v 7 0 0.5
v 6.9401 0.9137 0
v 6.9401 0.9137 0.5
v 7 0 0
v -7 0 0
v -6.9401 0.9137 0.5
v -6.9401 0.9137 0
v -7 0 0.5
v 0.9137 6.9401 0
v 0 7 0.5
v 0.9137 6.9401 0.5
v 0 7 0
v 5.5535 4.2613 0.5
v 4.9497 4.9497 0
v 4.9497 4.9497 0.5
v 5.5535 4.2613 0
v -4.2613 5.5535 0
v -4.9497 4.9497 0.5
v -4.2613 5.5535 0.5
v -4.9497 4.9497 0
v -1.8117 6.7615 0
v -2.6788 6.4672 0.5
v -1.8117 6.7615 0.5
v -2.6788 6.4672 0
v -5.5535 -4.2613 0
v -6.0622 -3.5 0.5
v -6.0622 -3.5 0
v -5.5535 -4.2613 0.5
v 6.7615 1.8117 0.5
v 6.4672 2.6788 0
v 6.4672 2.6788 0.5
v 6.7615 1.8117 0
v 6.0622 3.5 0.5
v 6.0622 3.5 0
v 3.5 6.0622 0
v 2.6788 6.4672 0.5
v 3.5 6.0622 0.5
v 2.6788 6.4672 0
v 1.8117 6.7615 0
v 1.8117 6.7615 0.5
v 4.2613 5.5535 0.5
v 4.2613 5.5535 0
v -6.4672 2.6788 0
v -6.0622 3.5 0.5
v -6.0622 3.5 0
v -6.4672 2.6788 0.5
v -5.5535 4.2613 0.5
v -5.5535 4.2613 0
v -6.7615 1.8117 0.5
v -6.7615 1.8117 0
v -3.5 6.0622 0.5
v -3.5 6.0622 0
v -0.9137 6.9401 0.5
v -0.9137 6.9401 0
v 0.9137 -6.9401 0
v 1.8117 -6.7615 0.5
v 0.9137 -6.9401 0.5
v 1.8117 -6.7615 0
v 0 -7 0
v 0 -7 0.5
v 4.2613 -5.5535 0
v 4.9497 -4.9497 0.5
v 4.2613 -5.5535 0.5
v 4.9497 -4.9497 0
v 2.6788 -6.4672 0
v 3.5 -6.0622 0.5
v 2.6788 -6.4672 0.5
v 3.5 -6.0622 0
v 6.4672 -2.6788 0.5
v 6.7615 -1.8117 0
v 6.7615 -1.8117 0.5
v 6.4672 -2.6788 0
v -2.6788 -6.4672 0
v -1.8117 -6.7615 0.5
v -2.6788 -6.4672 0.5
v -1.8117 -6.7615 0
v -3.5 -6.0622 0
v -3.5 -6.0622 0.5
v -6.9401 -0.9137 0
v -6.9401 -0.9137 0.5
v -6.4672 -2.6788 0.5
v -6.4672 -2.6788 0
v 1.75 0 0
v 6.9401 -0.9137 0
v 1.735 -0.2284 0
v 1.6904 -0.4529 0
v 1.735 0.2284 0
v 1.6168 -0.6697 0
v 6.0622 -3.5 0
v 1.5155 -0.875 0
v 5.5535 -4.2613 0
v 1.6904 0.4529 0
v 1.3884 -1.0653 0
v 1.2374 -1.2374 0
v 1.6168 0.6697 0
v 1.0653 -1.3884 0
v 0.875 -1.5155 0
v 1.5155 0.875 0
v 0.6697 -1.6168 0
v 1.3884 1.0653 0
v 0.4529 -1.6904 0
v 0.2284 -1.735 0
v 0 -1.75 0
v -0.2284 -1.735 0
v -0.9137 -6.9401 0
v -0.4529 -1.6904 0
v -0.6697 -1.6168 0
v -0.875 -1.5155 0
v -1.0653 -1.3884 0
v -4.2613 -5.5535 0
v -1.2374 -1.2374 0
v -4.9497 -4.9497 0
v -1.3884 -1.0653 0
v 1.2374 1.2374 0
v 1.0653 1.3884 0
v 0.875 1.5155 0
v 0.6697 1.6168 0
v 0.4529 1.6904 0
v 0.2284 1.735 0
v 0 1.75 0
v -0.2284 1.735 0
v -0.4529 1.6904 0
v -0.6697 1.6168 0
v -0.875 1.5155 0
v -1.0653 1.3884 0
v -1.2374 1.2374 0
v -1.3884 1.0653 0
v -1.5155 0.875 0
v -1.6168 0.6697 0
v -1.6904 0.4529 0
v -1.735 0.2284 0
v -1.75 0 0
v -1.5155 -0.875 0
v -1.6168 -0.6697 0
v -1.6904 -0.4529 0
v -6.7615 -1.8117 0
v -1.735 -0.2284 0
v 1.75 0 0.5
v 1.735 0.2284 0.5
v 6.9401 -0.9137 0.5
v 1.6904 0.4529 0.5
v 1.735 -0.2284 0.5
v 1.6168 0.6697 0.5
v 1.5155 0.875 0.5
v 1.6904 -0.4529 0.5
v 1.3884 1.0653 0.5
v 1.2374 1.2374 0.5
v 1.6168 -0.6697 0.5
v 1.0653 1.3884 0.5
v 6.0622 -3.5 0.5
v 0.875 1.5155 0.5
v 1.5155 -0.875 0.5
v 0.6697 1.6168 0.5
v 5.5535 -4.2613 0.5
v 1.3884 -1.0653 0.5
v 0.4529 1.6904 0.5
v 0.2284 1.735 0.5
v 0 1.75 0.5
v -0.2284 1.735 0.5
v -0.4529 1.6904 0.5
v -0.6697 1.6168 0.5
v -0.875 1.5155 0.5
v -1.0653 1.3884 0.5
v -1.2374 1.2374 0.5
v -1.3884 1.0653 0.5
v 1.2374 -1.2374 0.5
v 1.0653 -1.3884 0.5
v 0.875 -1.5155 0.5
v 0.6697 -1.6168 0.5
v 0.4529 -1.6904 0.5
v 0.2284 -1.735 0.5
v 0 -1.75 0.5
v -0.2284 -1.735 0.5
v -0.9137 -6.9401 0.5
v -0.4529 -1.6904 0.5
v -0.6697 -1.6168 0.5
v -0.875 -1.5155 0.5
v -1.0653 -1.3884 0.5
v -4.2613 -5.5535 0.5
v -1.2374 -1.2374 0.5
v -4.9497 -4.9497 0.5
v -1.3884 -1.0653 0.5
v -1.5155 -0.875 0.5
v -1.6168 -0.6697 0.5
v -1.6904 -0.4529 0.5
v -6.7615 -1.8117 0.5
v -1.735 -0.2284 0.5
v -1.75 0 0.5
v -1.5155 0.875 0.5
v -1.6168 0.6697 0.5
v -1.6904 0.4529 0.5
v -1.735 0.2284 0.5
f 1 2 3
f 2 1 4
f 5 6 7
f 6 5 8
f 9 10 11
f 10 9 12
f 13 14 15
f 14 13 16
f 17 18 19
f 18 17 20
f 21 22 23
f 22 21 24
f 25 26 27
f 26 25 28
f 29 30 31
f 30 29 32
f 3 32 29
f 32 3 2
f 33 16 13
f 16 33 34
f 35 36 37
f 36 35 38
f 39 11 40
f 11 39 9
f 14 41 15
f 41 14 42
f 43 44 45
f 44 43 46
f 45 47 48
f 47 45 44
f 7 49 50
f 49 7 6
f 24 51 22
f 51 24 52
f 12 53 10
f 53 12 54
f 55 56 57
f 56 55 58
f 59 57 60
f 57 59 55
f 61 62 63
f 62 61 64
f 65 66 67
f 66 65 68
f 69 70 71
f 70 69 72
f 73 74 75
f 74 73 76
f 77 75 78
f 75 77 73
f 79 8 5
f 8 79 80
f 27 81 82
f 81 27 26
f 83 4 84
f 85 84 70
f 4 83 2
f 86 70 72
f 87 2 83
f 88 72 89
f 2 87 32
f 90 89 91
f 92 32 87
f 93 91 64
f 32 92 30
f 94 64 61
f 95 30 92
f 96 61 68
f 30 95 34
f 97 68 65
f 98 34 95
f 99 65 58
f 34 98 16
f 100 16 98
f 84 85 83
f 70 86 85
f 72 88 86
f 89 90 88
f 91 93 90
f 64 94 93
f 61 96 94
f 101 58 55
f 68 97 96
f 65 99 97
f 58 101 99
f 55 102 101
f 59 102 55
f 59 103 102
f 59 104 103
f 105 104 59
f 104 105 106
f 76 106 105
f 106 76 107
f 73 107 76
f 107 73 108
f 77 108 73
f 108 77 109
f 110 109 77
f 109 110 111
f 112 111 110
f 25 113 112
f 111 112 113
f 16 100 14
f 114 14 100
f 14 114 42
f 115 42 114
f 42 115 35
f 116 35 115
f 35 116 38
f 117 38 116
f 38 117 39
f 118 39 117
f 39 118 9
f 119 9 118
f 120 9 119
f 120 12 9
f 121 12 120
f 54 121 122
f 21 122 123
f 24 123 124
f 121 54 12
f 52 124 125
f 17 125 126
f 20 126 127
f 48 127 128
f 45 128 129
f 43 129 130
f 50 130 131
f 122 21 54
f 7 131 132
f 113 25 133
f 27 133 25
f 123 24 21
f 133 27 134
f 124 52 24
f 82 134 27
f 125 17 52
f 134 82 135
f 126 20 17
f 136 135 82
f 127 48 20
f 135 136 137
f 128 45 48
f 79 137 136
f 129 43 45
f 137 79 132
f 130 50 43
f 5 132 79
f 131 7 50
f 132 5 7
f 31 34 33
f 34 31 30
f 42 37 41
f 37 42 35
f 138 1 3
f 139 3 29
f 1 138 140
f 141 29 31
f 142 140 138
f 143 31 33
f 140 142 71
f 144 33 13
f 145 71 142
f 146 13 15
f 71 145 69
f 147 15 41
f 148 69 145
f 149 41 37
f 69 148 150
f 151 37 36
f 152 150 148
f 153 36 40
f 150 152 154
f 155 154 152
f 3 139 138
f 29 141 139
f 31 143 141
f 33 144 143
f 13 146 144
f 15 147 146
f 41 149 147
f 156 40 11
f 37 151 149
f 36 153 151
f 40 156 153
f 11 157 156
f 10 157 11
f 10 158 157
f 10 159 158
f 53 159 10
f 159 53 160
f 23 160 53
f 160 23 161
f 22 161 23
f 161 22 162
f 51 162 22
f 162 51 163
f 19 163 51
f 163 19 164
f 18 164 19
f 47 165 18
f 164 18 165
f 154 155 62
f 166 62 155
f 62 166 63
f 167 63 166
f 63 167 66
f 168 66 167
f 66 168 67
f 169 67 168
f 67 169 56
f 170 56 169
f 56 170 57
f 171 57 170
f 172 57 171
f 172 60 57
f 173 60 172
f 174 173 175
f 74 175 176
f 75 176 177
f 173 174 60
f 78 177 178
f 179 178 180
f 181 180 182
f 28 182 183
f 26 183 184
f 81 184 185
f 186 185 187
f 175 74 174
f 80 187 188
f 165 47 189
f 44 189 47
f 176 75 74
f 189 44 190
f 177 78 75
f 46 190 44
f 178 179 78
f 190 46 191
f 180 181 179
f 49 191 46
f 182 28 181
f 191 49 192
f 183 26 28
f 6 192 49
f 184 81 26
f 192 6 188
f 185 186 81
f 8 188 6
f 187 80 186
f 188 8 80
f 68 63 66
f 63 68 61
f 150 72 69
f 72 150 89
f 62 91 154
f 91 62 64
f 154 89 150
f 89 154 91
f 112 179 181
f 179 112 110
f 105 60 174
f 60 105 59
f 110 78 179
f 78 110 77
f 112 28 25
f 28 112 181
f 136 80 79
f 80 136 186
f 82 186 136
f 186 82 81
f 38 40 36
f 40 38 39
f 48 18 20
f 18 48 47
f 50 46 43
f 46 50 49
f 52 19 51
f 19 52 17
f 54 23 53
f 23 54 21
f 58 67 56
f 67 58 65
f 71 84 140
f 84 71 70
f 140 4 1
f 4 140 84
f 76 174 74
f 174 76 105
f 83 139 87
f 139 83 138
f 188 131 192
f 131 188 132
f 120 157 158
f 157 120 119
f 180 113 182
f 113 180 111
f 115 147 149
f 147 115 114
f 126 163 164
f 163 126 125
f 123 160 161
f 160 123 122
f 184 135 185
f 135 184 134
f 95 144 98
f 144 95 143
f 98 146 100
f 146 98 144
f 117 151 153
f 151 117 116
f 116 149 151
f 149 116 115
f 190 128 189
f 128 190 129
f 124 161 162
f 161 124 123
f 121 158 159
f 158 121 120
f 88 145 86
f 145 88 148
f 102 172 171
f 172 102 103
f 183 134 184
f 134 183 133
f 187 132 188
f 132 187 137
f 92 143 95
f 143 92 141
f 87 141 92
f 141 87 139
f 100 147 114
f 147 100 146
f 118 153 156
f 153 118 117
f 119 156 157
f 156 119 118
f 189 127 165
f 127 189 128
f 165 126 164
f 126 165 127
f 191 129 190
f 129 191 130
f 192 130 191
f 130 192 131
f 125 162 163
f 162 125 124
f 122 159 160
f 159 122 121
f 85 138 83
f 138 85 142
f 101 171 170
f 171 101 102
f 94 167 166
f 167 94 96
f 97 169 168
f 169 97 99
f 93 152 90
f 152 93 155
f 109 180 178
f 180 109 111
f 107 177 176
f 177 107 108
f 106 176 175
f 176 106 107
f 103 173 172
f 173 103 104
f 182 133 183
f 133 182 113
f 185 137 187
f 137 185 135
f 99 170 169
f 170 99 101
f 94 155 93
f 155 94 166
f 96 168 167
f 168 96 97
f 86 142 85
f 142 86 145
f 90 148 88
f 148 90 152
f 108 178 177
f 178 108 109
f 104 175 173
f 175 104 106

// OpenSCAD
// file: parameters.scad
// =============================================================================
// Gen-CE — nightly 2026-10-14 (physics_scorer, honest magpylib watts)
// Wire-saver stator for the Gen-CD rotors: only 3.9 mm of copper (≈9 layers), magnet faces ≈6.5 mm apart, peak Bz ≈0.70 T. Uses ≈300 m of wire (≈80 m less than Gen-CD) and still clears Gen-BX; shares every rotor part, the steel, the frame rods and the bearing bridges with Gen-CD, so the two stators swap on the same machine.
// Clocking 0 deg (magnets N facing S) + D-flat keyed bore + index notch + flip-symmetric hole map.
// Windable 2-piece bobbin; turns = physics_scorer turns_fit; copper only between flanges.
// Steel back-iron: 2× Ø198 × 4.76 mm (3/16") mild-steel discs (steel_backiron_disc.dxf); magnets sit ON the steel
// (through-pockets) -> score with --back-iron. Night 2026-10-14.
// =============================================================================
topology            = "dual_rotor";

// --- Wire / winding (physics_scorer winding-fit) -------------------------------
wire_awg            = 26;
wire_od             = 0.45;     // insulated OD mm (bare 0.405)
fill_realistic      = 0.65;     // insulated-wire area / window (DENSE layered wind with a jig; scorer cap 0.65)
turns               = 288;       // = physics_scorer turns_fit (do NOT raise)
coil_former_type    = "bobbin";
coil_core_inset     = 18.10;     // radial copper build: hub = copper boundary inset by this
wind_build_axial    = 0.0;      // nothing proud of the flanges
wind_build_radial   = 0.0;

// --- Bobbin (base + lid) ---------------------------------------------------------
coil_id_r           = 64.00;    // copper boundary sector
coil_od_r           = 104.00;
span_deg            = 26.87;    // = pitch - 2*asin((wall+0.85)/coil_id_r) -> >=1.2 mm stator web
former_web          = 3.90;     // copper height between flanges (TALL copper: steel keeps Bz up)
flange_t            = 0.80;     // >= 0.8 mm FDM wall rule (tall winds push on the flanges)
wall                = 0.80;     // flange lip beyond copper
former_bare_h       = former_web + 2 * flange_t;
coil_envelope_h     = former_bare_h + 2 * wind_build_axial;
tab_w               = 7.0;
tab_len             = 7.0;
tab_h               = former_bare_h / 2;
pin_d               = 1.9;      // 1.75 mm filament locating pin
coil_mount_r        = coil_od_r + 0.2 + 4.0;
lead_y              = 1.6;
lead_slot_w         = 0.9;
lead_groove_d       = 0.6;

// --- Gap -------------------------------------------------------------------------
run_clear           = 0.50;     // rotor face -> flange
gap_spacer_h        = run_clear + wind_build_axial;
m2m                 = coil_envelope_h + 2 * run_clear;   // rotor face to rotor face (= gap_sleeve length)

// --- Stator ----------------------------------------------------------------------
coil_stations       = 12;
bay_clear           = 0.35;     // 0.35 mm: bobbin BASES print IN PLACE inside the stator bays (print-in-place gap), then pop out
stator_thick        = former_bare_h;                        // bobbins flush both faces
stator_od           = 229.0;
shaft_clear_stator  = 14.0;     // stator is static; gap sleeve OD 12 spins inside
stator_ir           = 58.85;    // ANNULAR stator: open centre (nested one-plate pack); inner rim 4.0 mm

// --- Rotor(s) --------------------------------------------------------------------
magnet_Br           = 1.43;     // N52
magnet_d_large      = 20.0;
magnet_h_large      = 5.0;      // one O20x5 per pocket
magnet_h_small      = 5.0;      // unused: no O5 pockets in this kit
halbach_magnetisation = "none";  // NO O5 assist magnets in this kit (scan: they lower the 4-pole score)
rotor_b_same_axis   = true;     // same-index magnets share one axis: N faces S across the gap
large_pocket_d      = 20.3;
small_pocket_d      = 5.3;
pocket_h            = 5.00;     // THROUGH the carrier: magnet back face sits on the steel disc (FLUSH seat: carrier = magnet height, magnet face level with the rotor face)
large_n             = 8;
R_large             = 86.0;
small_r_list        = [];       // no O5 pockets
carrier_od          = 198.0;
ring_ir             = 72.85;    // RING rotor: PLA magnet ring r ring_ir..carrier_od/2 (steel disc = structural rotor)
hub_flange_od       = 74.0;     // separate rotor_hub flange (inside the ring, flush with the ring face)
csk_d               = 6.6;      // M3 countersunk head pocket (ISO 10642 head 6.0 nominal) on the stator face
csk_depth           = 1.55;     // = (csk_d - m3_clear) / 2: 90 deg cone; head sits 0.3 mm below the face
n_seg               = 8;        // magnet-carrier ARCS per rotor (segmented carrier)
seg_deg             = 360 / n_seg;
seg_start           = -22.5;   // arc edge angle (between pocket 0 and its clamp bolt)
seg_kerf_deg        = 0.4;      // gap between neighbouring arcs on the steel
carrier_thick       = pocket_h;
hub_h               = 12.0;     // > steel_t + insert: radial set-screw clears the steel
hub_od              = 24.0;     // slim hub so the M4 brace rods fit at R~18 inside the coil ring
hub_insert_d        = 4.0;      // M3 heat-set insert, radial, bears on the D-flat
rotor_b_offset_deg  = 0.0;      // CLOCKING: magnets directly opposite
shaft_key           = "dflat";
dflat_depth         = 0.5;      // 8 mm shaft with 0.5 mm flat (7.5 across flat)
index_notch_d       = 3.0;

// --- Steel back-iron (buyable laser-cut) -------------------------------------------
steel_t             = 4.76;      // mild steel thickness (image method ignores it; sized from steel_flux.py so the return path stays well below saturation)
steel_center_hole   = 26.0;     // slips over the rotor hub (OD 24)
steel_od            = carrier_od;   // steel disc OD = rotor carrier OD

// --- Modular MAX interface ----------------------------------------------------------
shaft_bore          = 8.35;
dflat_x             = 4.0 - dflat_depth + (shaft_bore - 8.0) / 2;
bearing_d           = 21.85;
bearing_h           = 7.2;
m3_clear            = 3.5;
bolt_r_inner        = 30.0;     // M3 steel-disc clamp bolts (inside the magnet ring)
bolt_n_inner        = 4;
bolt_inner_angles   = [0, 90, 180, 270];
bolt_r_outer        = 86.0;     // second M3 steel-disc clamp ring
bolt_outer_angles   = [22.5, 67.5, 112.5, 157.5, 202.5, 247.5, 292.5, 337.5];
flange_bolt_r       = 109.5;     // frame rods: OUTSIDE the rotor OD (rotors spin inside them)
flange_bolt_n       = 4;
flange_bolt_offset  = 45.00;    // between coil stations -> never cuts a lead groove/tab
brace_r             = 18.0;
brace_d             = 4.3;      // temporary M4 jack rods (assembly only)
brace_n             = 4;
brace_angles        = [45, 135, 225, 315];          // flip-symmetric

spacer_pad_od       = 14.0;
spacer_pad_id       = m3_clear;
endbell_od          = 229.0;
endbell_thick       = 8.0;
endbell_shaft_clear = 10.0;
collar_h            = 10.0;
standoff_od         = 9.0;
frame_standoff_h    = run_clear + carrier_thick + hub_h + collar_h + 2.0;
sleeve_od           = 12.0;
plate_max_mm        = 410;

$fn = 64;
// main file
// Gen-CE — assembly gap shim, h = run_clear (rotor face -> flange); copper is inside the flanges
include <parameters.scad>;
$fn = 48;
difference() {
    cylinder(d=spacer_pad_od, h=gap_spacer_h);
    translate([0, 0, -0.1]) cylinder(d=spacer_pad_id, h=gap_spacer_h + 0.2);
}
